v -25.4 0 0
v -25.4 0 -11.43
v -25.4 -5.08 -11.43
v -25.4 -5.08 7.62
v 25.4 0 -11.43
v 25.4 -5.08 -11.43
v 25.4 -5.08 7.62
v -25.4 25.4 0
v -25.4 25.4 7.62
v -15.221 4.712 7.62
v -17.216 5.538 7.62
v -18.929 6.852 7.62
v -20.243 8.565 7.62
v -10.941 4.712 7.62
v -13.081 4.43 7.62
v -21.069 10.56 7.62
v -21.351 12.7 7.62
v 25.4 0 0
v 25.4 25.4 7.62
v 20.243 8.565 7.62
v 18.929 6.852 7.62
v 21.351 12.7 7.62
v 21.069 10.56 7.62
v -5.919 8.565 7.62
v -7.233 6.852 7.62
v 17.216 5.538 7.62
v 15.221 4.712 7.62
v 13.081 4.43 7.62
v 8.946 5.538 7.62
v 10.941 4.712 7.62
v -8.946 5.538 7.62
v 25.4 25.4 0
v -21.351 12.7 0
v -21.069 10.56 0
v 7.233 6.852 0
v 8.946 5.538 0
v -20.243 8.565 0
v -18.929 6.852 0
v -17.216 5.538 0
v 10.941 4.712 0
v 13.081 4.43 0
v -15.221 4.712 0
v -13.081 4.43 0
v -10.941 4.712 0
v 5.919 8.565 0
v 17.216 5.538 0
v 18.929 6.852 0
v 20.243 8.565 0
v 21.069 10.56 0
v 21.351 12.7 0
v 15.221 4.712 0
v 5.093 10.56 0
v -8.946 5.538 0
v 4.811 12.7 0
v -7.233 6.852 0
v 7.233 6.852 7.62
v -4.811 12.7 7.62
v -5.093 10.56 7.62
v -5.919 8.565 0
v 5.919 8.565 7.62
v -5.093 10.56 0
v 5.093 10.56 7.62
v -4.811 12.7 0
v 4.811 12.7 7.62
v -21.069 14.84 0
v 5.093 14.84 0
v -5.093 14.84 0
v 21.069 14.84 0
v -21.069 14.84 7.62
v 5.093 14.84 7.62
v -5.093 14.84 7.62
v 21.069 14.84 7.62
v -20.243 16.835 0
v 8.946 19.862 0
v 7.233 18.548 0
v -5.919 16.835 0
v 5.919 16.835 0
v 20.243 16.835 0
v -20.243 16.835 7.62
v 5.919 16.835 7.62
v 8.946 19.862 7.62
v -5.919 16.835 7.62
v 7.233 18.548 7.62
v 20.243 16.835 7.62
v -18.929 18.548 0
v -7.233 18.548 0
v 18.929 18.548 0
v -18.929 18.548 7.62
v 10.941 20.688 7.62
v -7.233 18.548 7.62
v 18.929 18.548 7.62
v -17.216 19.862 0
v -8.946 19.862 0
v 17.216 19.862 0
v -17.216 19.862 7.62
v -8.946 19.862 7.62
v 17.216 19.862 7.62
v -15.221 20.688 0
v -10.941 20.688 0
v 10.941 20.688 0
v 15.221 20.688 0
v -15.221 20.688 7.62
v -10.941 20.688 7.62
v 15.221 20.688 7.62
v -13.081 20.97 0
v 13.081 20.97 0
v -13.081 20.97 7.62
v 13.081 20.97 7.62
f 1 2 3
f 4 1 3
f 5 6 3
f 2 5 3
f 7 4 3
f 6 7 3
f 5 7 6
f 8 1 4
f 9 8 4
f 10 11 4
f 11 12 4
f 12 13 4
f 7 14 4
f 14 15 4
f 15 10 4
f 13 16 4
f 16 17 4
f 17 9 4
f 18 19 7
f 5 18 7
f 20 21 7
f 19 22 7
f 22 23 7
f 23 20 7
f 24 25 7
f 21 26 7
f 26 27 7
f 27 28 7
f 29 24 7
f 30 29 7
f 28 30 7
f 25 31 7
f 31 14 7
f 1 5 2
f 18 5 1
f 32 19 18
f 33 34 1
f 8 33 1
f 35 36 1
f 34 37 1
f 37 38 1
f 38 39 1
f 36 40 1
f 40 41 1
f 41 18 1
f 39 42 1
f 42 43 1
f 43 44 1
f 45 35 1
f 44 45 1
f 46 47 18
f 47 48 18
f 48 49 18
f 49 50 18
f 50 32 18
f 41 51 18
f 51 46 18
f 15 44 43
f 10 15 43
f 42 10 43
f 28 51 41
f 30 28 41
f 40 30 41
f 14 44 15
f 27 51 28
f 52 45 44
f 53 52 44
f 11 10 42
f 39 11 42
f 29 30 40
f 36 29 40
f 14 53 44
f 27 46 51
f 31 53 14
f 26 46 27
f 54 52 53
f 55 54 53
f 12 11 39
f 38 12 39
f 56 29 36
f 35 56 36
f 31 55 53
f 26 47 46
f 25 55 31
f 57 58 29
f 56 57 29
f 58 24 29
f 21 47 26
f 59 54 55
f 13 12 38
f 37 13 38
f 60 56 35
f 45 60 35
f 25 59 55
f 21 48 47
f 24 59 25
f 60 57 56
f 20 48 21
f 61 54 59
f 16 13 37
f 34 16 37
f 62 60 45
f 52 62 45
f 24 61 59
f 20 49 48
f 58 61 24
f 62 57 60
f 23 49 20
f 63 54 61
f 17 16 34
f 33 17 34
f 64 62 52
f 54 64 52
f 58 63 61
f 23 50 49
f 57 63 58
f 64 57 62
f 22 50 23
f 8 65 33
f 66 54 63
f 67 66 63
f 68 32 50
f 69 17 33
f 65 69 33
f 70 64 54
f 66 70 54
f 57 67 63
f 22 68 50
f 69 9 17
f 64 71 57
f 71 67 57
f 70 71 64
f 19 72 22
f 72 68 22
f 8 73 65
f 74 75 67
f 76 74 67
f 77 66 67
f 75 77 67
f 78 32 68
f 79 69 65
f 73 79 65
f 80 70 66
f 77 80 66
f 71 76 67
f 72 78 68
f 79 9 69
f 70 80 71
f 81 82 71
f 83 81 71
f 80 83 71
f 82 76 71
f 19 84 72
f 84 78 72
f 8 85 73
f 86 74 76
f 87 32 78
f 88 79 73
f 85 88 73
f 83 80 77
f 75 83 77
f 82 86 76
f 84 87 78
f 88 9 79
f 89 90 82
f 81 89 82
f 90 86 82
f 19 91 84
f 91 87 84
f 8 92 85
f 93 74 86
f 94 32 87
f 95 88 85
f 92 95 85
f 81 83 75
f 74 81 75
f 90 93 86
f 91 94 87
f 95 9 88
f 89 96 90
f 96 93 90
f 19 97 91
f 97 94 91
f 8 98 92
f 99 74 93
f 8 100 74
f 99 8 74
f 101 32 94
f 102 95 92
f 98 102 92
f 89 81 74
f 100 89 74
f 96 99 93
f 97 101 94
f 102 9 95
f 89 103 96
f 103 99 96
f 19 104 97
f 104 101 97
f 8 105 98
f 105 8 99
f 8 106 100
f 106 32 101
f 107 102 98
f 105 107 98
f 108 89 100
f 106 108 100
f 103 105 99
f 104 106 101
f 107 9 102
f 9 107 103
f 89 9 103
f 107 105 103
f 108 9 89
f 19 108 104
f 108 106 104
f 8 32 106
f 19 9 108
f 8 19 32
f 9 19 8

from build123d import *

# Parameters (mm, degrees)
SKETCH12_W          = 50.8
SKETCH12_H          = 25.4
BOSS_EXTRUDE1_DEPTH = 7.62
SKETCH11_R          = 8.2696685
CUT_EXTRUDE2_DEPTH  = 8.62
SKETCH14_W          = 50.8
SKETCH14_H          = 19.05
BOSS_EXTRUDE2_DEPTH = 5.08


with BuildPart() as part:
    # Sketch12 → Boss-Extrude1 (new body)
    with BuildSketch(Plane.XY):
        with Locations((0, 12.7)):
            Rectangle(SKETCH12_W, SKETCH12_H)
    extrude(amount=BOSS_EXTRUDE1_DEPTH)

    # Sketch11 → Cut-Extrude2 (cut, through all)
    with BuildSketch(Plane.XY):
        with Locations((13.081, 12.7)):
            Circle(SKETCH11_R)
        with Locations((-13.081, 12.7)):
            Circle(SKETCH11_R)
    extrude(amount=CUT_EXTRUDE2_DEPTH, mode=Mode.SUBTRACT)

    # Sketch14 → Boss-Extrude2 (add)
    with BuildSketch(Plane(origin=(0, 0, 0), x_dir=(-1, 0, 0), z_dir=(0, -1, 0))):
        with Locations((0, 1.905)):
            Rectangle(SKETCH14_W, SKETCH14_H)
    extrude(amount=BOSS_EXTRUDE2_DEPTH)


solid = part.part
